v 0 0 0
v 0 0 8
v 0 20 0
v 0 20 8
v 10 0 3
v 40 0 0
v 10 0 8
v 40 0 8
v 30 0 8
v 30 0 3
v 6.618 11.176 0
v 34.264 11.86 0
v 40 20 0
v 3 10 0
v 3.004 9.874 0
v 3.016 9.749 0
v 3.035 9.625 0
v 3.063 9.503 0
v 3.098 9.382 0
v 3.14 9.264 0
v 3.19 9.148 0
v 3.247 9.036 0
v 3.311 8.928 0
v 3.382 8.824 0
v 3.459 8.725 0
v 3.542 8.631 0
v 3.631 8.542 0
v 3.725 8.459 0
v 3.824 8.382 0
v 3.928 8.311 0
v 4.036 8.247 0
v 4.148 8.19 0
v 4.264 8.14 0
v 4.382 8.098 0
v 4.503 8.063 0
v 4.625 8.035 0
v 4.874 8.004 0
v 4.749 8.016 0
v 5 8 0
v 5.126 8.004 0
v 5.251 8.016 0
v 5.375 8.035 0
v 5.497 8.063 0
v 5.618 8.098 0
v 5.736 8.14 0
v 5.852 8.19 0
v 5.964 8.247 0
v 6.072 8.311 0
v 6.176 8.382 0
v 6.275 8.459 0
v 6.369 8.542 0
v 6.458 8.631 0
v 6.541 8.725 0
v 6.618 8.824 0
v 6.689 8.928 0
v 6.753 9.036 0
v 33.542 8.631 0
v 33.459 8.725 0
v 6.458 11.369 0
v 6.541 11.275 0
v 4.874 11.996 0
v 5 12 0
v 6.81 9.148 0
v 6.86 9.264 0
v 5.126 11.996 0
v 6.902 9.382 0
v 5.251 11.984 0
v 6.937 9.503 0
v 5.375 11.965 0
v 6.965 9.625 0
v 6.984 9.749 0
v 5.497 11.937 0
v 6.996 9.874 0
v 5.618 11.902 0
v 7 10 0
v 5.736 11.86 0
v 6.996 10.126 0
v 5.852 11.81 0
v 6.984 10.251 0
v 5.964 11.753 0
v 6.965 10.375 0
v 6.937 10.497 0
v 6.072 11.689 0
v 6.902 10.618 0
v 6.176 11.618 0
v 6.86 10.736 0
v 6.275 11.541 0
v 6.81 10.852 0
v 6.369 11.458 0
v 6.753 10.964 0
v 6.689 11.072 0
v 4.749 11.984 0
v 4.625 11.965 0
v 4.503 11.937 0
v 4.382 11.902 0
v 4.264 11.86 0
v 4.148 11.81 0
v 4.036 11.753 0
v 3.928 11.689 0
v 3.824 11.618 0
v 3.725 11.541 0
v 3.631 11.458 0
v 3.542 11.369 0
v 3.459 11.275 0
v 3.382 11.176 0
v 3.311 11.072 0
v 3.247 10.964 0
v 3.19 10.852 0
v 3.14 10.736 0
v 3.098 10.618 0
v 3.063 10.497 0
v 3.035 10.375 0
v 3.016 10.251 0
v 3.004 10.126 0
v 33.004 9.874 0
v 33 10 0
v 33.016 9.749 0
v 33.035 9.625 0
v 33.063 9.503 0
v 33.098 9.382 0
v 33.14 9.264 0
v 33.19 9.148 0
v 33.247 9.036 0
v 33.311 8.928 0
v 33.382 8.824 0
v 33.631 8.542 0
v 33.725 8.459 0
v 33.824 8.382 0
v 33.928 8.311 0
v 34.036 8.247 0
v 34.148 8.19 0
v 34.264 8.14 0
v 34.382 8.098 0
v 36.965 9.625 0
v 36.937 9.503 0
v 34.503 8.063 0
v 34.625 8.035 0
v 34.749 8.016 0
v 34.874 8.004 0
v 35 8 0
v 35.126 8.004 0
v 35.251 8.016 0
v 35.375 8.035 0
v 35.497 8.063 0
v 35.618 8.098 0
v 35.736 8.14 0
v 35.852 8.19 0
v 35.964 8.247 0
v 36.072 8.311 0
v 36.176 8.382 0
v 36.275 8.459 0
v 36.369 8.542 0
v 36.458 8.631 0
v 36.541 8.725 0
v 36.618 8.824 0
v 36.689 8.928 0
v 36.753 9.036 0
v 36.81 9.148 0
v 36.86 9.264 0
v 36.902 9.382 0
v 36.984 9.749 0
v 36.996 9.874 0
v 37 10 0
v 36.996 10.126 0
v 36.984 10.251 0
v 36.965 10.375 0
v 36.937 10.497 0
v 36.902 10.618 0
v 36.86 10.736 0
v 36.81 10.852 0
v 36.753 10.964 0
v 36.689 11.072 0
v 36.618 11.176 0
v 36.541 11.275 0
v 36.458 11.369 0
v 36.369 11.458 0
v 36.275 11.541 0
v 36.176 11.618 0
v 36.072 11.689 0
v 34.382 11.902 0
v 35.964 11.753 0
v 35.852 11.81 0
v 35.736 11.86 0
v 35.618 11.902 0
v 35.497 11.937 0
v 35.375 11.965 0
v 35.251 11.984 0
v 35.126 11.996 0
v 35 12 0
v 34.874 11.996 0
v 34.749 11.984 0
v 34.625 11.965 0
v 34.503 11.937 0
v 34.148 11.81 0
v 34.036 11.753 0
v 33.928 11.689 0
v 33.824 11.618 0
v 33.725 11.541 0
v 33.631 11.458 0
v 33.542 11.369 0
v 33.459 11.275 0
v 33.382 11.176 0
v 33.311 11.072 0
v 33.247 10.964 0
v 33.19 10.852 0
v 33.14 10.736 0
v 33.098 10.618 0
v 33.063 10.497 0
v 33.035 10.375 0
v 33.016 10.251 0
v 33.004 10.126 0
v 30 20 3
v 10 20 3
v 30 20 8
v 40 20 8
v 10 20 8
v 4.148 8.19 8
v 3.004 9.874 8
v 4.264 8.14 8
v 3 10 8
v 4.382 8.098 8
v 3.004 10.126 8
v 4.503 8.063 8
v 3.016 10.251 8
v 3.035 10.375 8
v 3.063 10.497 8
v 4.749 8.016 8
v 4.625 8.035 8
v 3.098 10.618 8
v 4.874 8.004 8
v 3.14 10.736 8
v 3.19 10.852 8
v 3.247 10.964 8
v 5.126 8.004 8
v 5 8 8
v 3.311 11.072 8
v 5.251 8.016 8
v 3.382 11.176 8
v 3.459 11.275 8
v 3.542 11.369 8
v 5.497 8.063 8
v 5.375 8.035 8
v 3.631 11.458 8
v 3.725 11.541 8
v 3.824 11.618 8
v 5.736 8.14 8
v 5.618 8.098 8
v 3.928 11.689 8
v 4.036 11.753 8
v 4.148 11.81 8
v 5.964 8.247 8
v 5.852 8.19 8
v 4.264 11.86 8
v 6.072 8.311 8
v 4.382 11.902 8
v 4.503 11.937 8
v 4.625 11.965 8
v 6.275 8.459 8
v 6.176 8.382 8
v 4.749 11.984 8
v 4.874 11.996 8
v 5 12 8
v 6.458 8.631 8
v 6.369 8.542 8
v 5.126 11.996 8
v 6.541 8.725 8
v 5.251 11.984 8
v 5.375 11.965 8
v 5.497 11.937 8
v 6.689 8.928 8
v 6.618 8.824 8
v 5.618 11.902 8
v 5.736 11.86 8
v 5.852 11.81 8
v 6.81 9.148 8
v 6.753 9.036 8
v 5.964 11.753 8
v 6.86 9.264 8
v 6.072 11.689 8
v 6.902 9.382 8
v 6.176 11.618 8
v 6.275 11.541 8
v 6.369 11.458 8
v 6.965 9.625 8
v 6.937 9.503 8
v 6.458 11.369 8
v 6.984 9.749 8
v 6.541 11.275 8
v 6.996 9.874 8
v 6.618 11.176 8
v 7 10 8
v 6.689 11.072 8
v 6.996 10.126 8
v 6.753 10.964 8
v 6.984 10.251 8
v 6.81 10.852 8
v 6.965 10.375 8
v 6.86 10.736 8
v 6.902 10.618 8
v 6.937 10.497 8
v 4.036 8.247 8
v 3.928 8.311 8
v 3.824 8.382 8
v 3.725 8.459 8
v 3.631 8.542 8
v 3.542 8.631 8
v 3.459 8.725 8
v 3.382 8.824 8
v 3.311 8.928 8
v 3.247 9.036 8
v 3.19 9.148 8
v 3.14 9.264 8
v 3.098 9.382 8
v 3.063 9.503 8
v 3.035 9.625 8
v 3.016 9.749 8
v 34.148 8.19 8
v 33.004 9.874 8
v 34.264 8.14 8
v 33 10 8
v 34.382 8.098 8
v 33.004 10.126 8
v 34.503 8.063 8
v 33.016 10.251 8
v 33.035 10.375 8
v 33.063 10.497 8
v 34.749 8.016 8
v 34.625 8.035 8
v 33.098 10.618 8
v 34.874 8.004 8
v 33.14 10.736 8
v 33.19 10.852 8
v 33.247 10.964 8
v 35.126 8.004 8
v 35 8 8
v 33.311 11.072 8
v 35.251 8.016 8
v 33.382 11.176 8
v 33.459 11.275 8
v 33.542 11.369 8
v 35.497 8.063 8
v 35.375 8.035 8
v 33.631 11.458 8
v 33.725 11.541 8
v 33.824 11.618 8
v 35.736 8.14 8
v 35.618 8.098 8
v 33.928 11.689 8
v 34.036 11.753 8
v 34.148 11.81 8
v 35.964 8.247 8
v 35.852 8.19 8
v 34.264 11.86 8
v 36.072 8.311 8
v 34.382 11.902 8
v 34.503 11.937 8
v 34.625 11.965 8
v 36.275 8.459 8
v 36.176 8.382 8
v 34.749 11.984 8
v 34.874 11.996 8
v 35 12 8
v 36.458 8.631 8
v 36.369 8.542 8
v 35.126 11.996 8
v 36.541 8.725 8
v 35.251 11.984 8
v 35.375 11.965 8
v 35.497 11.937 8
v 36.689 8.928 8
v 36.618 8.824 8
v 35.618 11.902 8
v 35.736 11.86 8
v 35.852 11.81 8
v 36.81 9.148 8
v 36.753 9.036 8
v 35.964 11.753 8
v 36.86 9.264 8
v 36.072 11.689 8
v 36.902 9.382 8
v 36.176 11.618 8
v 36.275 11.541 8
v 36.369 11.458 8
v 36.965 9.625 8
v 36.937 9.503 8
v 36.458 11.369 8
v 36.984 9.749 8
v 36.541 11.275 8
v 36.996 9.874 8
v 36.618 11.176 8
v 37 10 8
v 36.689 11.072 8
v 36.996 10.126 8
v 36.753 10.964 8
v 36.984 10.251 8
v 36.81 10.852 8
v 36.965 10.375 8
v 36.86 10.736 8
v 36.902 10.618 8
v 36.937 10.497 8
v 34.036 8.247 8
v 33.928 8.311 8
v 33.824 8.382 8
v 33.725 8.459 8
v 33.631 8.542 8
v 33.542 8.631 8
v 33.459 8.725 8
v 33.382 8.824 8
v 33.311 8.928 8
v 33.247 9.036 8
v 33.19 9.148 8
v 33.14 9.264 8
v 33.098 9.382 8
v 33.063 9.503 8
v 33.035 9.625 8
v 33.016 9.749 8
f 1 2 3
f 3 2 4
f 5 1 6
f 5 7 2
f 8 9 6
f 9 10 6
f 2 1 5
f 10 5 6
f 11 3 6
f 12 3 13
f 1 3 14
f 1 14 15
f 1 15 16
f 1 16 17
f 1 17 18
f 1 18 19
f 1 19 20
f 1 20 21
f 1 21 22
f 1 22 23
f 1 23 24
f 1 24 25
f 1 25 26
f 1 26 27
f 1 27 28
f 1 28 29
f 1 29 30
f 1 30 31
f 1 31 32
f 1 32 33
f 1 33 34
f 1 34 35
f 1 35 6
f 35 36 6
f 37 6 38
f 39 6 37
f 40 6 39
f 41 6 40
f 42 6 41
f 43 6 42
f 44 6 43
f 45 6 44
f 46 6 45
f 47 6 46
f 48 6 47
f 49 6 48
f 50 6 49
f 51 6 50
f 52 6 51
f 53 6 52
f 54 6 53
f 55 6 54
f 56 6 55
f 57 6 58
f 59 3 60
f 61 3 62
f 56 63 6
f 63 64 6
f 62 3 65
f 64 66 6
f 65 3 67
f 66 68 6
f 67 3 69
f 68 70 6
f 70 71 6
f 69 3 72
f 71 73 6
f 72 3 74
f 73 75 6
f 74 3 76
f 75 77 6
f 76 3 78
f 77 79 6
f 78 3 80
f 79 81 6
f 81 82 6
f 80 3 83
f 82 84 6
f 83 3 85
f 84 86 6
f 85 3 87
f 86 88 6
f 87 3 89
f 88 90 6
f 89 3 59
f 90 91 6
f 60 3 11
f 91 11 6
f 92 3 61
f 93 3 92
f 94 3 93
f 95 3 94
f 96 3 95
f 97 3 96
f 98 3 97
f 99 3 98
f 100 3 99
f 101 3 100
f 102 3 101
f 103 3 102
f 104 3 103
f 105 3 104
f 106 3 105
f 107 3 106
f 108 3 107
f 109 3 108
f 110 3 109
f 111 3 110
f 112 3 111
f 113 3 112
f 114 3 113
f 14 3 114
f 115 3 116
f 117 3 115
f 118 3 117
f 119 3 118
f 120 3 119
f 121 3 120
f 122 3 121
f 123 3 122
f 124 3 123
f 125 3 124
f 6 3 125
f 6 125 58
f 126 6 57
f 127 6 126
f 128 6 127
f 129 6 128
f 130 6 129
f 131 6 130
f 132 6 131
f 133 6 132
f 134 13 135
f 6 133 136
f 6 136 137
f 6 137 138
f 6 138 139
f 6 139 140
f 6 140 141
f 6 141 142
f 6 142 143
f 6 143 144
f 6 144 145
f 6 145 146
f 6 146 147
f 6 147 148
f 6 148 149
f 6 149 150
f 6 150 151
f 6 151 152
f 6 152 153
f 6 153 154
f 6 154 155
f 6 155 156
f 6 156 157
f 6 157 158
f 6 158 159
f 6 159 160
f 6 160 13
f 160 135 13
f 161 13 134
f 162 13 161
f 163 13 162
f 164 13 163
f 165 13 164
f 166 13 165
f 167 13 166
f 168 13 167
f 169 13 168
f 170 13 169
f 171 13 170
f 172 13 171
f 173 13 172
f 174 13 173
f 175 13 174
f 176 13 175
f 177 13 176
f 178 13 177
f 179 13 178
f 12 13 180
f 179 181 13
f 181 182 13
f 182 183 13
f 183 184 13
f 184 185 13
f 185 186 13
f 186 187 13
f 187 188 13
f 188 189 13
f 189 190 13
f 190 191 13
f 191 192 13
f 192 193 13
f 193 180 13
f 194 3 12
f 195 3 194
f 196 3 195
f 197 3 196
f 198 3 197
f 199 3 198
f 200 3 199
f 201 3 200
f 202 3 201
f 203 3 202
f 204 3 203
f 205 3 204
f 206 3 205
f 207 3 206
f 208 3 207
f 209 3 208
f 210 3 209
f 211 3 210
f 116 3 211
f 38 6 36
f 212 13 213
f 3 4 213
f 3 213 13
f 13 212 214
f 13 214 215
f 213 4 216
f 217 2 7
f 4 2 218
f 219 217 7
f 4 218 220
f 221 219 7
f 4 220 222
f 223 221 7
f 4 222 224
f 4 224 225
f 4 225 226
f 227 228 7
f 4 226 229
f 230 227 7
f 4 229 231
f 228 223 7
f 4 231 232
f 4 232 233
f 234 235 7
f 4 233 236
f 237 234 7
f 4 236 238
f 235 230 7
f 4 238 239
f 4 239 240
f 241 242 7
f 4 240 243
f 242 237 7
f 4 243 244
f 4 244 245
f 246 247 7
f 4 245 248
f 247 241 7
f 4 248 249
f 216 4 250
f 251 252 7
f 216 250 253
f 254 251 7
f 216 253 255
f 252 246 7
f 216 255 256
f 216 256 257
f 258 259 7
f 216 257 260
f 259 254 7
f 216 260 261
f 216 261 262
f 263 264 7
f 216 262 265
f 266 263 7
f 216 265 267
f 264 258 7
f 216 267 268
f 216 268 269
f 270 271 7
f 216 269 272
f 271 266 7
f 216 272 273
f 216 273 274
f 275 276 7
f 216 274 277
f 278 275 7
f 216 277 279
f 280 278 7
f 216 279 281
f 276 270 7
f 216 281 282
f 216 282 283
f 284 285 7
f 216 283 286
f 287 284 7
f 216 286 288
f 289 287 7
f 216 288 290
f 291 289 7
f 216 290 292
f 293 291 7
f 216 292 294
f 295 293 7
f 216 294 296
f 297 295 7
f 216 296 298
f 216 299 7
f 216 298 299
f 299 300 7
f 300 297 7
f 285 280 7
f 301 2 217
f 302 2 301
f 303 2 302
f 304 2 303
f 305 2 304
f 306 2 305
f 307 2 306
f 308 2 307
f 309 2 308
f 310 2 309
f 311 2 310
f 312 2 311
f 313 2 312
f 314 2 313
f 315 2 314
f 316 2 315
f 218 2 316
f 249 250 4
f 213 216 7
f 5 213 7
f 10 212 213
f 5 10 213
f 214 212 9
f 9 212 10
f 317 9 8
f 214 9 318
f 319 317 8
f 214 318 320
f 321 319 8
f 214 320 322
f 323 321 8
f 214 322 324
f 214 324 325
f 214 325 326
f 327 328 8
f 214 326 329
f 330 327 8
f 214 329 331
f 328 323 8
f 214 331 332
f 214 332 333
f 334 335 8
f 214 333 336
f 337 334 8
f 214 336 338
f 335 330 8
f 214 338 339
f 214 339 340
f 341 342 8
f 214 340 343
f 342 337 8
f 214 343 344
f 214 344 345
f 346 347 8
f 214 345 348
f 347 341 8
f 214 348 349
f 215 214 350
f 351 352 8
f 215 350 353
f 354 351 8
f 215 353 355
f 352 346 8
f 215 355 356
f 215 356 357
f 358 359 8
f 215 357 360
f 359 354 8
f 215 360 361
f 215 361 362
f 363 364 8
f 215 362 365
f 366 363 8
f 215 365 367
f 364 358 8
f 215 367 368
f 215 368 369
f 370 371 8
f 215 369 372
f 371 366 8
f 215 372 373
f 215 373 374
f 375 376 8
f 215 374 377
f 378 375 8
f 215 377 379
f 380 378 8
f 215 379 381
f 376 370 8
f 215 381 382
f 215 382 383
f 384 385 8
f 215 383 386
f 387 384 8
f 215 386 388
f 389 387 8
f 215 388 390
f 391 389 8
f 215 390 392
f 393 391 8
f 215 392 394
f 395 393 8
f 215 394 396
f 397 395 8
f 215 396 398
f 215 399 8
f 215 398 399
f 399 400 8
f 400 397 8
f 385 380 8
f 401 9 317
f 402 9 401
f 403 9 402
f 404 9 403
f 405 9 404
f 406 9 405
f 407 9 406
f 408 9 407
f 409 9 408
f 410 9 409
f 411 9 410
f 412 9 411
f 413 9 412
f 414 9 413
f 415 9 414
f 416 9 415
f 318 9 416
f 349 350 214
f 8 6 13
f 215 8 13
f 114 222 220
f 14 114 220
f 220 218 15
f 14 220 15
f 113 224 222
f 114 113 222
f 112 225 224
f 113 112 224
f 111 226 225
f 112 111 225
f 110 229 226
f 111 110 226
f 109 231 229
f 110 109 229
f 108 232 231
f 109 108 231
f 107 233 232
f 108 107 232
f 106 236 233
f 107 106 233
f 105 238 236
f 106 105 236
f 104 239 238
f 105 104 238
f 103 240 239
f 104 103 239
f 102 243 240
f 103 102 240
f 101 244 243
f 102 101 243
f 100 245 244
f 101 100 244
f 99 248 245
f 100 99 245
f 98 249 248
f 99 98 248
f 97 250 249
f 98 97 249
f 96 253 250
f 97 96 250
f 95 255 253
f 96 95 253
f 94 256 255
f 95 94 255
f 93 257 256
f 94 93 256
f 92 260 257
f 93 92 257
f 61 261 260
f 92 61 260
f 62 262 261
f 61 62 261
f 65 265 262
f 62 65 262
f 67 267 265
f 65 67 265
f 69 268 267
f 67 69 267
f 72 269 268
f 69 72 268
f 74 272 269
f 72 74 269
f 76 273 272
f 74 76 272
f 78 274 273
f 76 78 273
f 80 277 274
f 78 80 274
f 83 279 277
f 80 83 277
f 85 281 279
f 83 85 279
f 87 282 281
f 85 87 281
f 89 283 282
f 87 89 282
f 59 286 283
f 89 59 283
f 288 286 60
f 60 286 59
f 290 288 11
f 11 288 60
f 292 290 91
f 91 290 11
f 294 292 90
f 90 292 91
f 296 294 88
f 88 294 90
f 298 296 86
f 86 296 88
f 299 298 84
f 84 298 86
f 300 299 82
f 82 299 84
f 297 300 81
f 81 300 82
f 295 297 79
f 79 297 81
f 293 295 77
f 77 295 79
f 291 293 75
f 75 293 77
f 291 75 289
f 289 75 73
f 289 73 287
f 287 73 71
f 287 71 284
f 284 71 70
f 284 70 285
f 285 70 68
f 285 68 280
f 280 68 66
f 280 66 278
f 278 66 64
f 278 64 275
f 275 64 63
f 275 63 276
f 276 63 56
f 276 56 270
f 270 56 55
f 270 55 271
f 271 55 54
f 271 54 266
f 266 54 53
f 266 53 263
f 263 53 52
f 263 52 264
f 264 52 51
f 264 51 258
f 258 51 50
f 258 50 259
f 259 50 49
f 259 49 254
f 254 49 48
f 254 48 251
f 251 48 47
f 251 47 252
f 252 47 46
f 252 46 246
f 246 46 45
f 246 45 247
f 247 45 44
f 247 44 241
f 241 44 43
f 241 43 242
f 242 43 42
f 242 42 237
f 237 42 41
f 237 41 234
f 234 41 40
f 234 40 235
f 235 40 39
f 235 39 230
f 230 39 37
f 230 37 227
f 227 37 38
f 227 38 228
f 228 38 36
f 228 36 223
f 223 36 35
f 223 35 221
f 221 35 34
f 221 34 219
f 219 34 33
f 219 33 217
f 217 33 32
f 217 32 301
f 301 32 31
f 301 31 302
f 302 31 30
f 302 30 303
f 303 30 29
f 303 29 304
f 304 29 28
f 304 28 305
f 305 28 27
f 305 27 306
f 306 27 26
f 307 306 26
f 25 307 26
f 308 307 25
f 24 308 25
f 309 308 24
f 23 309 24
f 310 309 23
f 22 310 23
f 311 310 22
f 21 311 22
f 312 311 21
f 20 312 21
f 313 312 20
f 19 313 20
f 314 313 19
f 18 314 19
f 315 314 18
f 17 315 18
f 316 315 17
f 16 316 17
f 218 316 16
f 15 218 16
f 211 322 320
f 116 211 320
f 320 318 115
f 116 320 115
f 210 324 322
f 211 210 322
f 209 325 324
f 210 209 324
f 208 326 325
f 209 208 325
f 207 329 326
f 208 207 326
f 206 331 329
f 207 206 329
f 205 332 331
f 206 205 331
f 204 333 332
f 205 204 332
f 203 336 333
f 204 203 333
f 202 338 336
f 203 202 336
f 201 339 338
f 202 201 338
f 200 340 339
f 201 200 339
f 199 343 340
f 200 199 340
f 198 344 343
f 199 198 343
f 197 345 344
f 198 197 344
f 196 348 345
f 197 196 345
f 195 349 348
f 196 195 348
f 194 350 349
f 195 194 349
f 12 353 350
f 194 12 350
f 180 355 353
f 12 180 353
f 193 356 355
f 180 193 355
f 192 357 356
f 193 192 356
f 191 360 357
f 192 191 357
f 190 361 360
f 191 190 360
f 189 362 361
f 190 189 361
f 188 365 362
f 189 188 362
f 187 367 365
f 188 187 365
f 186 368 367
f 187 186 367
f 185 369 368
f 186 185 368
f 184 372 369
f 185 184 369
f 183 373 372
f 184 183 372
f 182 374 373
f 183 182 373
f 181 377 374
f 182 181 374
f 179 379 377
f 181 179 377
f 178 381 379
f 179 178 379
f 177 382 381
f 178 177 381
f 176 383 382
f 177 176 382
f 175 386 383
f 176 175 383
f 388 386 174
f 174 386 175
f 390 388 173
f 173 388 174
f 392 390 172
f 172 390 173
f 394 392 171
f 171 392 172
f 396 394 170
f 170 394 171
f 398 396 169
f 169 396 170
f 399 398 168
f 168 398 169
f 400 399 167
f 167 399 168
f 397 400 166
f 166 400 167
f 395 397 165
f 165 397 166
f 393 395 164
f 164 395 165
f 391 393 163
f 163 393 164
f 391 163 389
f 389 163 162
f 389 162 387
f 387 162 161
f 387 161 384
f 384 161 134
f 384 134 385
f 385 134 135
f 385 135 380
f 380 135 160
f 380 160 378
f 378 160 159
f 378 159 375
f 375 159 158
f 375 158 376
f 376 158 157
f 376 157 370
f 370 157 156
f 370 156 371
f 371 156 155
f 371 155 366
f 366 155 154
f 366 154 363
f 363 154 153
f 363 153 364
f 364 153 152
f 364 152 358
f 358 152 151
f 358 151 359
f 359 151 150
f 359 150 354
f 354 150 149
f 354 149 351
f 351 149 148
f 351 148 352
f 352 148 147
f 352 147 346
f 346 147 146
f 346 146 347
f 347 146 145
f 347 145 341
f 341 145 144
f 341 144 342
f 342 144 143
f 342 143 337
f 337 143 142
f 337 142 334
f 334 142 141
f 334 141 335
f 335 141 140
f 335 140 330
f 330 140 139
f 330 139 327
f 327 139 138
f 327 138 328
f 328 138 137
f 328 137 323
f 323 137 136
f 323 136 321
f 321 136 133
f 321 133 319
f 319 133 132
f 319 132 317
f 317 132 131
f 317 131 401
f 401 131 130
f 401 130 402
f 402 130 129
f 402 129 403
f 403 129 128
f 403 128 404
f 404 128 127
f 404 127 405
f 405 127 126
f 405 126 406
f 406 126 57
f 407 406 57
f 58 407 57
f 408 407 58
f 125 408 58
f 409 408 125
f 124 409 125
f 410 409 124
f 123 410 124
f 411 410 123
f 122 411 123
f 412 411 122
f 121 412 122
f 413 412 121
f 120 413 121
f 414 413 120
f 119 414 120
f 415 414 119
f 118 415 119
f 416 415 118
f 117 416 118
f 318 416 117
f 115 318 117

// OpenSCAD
r_m3=2;
hauteur=8;
long=40;
larg=20;
espace=20;

module clip(){
difference(){
	cube([long,larg,hauteur]);

	translate([5,larg/2,-5]){cylinder(h = hauteur+10, r = r_m3, $fn=100);}
	translate([long-5,larg/2,-5]){cylinder(h = hauteur+10, r = r_m3, $fn=100);}
	
	translate([long/2-espace/2,-5,3]){cube([espace,larg+10,hauteur]);}

}

}
clip();
